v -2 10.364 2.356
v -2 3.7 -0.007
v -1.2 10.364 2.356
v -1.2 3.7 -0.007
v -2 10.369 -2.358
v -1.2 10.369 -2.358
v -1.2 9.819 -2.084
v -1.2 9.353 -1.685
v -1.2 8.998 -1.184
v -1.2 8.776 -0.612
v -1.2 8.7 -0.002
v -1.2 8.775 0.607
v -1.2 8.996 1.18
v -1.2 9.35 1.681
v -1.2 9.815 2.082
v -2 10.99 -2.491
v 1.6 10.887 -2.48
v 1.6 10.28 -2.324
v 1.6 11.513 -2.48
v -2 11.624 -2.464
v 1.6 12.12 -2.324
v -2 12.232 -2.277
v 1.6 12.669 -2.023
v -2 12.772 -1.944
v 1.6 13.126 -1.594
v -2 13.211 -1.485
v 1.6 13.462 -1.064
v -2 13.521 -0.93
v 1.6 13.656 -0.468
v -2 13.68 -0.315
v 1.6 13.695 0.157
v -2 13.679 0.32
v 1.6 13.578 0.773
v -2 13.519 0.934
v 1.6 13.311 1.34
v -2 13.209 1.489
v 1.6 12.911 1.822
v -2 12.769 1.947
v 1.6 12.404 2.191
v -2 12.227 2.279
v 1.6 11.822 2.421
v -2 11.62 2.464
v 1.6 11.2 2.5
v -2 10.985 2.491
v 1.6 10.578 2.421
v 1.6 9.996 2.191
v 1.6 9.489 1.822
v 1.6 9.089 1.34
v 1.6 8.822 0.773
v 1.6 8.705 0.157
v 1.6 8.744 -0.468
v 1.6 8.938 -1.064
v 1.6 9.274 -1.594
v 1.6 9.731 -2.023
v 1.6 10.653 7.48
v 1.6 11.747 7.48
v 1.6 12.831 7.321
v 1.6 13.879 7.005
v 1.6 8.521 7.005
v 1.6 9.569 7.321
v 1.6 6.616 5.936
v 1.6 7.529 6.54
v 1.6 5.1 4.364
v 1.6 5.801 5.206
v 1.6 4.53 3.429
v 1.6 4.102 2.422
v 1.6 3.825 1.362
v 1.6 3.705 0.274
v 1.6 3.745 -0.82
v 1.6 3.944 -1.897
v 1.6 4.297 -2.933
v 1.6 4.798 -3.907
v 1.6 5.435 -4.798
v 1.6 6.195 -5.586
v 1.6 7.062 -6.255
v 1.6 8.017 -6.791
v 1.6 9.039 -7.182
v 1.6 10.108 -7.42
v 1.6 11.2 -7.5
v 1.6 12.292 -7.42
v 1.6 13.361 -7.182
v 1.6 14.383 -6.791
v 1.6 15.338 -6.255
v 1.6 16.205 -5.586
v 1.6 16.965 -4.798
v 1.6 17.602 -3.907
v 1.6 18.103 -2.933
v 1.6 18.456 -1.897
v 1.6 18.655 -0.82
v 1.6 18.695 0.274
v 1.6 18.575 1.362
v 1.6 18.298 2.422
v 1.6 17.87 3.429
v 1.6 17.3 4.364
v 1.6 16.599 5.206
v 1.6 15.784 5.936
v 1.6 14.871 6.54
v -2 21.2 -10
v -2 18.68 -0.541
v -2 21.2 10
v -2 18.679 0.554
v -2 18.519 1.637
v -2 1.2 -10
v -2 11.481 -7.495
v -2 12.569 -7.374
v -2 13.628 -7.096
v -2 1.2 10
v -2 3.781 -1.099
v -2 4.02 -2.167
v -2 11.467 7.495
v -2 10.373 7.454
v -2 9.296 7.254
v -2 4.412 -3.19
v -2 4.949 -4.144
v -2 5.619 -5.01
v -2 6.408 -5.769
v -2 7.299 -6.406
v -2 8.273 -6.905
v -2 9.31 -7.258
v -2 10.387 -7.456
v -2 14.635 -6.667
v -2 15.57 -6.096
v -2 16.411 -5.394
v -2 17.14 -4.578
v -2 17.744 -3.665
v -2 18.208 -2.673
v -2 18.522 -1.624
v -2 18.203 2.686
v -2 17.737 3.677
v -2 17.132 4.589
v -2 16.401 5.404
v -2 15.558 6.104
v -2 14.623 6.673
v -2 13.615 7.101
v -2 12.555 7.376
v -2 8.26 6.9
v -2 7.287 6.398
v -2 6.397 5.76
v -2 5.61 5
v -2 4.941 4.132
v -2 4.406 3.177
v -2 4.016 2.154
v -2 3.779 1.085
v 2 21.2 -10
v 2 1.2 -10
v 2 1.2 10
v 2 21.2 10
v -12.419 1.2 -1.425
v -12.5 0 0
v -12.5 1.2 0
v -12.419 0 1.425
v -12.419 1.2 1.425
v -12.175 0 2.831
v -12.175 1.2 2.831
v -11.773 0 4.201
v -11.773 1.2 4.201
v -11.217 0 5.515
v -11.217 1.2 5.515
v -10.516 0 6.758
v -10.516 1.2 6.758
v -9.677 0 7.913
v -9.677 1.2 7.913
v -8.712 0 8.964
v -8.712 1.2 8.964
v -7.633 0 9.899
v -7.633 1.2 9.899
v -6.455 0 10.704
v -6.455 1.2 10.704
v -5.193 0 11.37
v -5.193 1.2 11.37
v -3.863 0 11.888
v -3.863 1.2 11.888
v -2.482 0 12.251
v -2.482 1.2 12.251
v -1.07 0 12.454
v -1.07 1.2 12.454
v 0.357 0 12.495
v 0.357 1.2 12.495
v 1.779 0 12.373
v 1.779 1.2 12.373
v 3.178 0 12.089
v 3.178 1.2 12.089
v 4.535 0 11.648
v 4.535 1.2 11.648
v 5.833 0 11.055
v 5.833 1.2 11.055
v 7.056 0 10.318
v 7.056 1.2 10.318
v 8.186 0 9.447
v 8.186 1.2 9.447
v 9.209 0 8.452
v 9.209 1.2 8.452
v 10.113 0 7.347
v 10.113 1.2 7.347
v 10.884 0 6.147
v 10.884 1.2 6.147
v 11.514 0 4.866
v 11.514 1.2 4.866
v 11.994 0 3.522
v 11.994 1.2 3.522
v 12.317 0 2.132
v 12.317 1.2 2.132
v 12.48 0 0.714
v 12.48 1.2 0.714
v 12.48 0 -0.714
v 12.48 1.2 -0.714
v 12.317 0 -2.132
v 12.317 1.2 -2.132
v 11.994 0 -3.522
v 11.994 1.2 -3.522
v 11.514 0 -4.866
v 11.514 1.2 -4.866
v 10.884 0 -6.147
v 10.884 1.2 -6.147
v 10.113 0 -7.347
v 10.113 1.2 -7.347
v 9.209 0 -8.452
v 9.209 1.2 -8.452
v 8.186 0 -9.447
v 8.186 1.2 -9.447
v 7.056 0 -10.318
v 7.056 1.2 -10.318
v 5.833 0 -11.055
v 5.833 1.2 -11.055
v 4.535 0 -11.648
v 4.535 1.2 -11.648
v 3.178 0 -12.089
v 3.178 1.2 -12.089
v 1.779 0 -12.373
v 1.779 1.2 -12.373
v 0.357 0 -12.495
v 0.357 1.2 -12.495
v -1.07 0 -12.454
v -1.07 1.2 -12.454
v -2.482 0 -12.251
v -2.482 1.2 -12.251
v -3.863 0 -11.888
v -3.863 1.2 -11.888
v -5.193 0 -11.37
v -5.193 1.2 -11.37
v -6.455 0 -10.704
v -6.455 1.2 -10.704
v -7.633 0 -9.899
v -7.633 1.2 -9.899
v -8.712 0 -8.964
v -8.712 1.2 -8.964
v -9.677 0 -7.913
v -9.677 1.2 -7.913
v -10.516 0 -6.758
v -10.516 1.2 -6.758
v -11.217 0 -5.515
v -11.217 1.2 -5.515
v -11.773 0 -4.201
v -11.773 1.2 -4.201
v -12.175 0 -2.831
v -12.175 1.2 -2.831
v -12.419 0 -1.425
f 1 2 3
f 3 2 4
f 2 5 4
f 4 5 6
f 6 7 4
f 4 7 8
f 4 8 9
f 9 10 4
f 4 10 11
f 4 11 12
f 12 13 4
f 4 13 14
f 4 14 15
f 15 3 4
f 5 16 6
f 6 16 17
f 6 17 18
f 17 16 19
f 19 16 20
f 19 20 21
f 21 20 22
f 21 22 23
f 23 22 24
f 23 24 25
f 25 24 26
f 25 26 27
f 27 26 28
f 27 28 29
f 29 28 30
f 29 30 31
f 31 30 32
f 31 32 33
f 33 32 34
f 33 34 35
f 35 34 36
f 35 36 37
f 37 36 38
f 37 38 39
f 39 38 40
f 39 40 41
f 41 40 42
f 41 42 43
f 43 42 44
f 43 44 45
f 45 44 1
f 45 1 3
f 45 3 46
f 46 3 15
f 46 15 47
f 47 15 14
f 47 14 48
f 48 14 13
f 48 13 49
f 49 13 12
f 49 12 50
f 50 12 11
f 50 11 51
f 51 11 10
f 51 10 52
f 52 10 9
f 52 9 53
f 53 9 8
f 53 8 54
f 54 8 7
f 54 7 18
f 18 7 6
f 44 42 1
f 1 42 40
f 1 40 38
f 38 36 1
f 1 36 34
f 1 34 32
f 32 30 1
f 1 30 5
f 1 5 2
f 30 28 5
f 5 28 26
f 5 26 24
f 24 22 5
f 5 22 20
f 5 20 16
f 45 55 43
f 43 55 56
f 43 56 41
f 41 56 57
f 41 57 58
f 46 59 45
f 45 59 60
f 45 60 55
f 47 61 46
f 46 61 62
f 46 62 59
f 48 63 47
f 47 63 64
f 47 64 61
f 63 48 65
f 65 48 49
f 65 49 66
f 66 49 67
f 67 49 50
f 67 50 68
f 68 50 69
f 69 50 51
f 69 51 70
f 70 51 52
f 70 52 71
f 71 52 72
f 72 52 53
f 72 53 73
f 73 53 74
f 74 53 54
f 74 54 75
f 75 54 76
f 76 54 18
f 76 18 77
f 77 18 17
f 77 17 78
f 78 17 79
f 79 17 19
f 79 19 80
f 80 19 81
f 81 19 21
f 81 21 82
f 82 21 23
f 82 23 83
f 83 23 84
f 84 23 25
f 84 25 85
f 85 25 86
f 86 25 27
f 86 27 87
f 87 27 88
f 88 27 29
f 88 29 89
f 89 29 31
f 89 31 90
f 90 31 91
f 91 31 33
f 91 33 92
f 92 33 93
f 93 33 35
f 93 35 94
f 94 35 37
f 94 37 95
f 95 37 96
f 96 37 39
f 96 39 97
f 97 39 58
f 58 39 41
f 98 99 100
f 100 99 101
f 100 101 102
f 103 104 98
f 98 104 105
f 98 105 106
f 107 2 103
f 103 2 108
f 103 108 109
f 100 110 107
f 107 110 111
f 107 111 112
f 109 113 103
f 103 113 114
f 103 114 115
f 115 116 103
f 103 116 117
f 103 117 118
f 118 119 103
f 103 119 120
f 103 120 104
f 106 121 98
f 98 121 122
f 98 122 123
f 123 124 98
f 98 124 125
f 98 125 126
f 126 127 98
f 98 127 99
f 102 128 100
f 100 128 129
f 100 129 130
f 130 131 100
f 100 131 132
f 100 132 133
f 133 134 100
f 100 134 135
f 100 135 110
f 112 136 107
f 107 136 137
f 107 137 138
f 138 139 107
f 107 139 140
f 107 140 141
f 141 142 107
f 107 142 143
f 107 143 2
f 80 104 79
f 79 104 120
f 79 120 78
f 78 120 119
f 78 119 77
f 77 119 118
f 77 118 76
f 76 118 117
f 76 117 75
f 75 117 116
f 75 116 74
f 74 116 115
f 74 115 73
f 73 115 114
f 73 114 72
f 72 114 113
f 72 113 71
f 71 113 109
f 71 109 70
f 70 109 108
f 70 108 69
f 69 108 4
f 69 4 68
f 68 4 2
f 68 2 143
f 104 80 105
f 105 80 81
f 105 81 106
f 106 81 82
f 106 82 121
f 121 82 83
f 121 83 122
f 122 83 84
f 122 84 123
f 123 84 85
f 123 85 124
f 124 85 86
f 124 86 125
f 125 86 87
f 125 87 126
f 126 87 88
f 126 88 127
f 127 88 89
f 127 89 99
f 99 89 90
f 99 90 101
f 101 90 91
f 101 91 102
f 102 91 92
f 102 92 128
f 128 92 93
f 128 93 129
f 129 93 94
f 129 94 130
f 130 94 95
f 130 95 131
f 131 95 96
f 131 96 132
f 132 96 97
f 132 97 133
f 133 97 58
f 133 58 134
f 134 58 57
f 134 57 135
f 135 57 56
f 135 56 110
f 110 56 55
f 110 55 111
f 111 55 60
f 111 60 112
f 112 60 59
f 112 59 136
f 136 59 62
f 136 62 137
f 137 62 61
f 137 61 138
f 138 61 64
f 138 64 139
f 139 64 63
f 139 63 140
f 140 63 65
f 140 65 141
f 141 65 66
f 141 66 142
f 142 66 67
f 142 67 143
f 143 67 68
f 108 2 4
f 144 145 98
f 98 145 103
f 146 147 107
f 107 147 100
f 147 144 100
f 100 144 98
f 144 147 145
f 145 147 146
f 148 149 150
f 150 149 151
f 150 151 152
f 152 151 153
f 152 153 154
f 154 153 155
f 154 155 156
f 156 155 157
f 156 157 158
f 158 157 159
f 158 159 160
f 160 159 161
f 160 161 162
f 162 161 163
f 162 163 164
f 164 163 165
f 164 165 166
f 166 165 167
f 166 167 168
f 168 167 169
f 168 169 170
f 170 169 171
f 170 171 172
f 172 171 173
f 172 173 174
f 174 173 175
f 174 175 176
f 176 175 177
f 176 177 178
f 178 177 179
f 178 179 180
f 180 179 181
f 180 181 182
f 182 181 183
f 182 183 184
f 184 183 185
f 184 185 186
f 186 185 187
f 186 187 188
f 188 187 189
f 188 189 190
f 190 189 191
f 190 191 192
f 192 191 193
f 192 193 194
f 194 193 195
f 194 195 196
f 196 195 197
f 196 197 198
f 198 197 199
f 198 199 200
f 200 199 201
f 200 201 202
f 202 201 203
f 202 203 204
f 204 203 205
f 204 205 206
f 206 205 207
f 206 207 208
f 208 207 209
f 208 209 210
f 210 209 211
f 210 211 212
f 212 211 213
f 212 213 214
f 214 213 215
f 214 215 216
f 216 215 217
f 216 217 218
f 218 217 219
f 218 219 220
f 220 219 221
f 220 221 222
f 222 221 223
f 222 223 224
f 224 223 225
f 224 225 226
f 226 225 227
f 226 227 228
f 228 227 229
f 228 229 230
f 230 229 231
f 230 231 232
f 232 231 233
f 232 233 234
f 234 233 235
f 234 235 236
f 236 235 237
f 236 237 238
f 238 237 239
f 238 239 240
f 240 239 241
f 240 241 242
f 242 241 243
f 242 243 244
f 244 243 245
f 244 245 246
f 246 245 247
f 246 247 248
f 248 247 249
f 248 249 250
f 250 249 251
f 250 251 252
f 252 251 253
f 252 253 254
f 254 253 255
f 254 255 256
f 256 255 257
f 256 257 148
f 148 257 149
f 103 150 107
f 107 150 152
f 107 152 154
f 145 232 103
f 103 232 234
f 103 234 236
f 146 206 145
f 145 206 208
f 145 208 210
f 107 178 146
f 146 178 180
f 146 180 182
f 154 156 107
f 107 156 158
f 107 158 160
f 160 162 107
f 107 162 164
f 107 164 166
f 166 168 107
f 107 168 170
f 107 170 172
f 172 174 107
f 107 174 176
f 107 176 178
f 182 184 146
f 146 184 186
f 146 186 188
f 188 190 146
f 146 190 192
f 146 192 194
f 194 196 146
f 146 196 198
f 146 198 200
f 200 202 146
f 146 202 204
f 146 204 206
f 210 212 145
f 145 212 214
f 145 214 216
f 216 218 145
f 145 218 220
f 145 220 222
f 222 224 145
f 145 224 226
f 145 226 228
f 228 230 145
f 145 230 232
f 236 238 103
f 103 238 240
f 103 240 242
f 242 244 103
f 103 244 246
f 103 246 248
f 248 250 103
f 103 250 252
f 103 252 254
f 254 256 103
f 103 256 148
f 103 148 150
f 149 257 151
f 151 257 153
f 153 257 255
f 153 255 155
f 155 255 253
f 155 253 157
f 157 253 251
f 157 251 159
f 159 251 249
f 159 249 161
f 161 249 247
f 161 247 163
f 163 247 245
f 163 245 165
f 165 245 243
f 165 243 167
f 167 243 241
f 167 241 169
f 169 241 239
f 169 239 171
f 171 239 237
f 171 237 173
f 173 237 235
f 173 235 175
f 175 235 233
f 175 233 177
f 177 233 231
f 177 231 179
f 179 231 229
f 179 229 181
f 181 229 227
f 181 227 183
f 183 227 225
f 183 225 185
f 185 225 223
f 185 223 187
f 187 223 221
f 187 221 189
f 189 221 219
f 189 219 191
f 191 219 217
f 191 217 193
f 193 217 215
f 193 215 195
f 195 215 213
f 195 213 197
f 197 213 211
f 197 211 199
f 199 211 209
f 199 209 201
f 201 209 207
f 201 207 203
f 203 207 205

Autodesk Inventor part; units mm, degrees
ref_plane "XZ Plane" through (0, 0, 0) normal (0, 1, 0) x (-1, 0, 0)
ref_plane "XY Plane" through (0, 0, 0) normal (0, 0, 1) x (1, 0, 0)
sketch "Sketch1" plane through (0, 0, 0) normal (0, 1, 0) x (-1, 0, 0)
  circle A0 centre (0, 0) radius 12.5
  dimension "d0" = 25
extrude "Extrusion1" add sketch "Sketch1" along normal blind 1.2
sketch "Sketch3" plane through (0, 0, 0) normal (1, 0, 0) x (0, 1, 0)
  line L0 (1.2, -12.5) -> (1.2, 12.5) projected
  line L1 (0, -12.5) -> (0, 12.5) projected
  line L2 (1.2, 10) -> (21.2, 10)
  line L3 (21.2, 10) -> (21.2, -10)
  line L4 (21.2, -10) -> (1.2, -10)
  line L5 (1.2, -10) -> (1.2, 10)
  circle A0 centre (11.2, 0) radius 7.5
  point P0 (0, 0)
  point P1 (1.2, -10)
  point P2 (1.2, -10)
  dimension "d3" = 20
  dimension "d4" = 20
  dimension "d5" = 2.5
  dimension "d6" = 15
extrude "Extrusion2" add sketch "Sketch3" along normal mid plane 4
sketch "Sketch4" plane through (2, 0, 0) normal (1, 0, 0) x (0, 0, -1)
  line L0 (-10, 21.2) -> (-10, 1.2) projected
  line L1 (10, 1.2) -> (-10, 1.2) projected
  line L2 (10, 1.2) -> (10, 21.2) projected
  line L3 (10, 21.2) -> (-10, 21.2) projected
  circle A0 centre (0, 11.2) radius 7.5 projected
  circle A1 centre (0, 11.2) radius 7.5
  point P0 (0, 0)
extrude "Extrusion3" add sketch "Sketch4" against normal blind 0.4 contours A0
sketch "Sketch5" plane through (1.6, 11.2, 0) normal (-1, 0, 0) x (0, 0, 1)
  line L0 (10, -10) -> (10, 10) projected
  line L1 (10, 10) -> (-10, 10) projected
  line L2 (-10, 10) -> (-10, -10) projected
  line L3 (10, -10) -> (-10, -10) projected
  circle A0 centre (0, 0) radius 7.5 projected
  circle A1 centre (0, 0) radius 2.5
  point P0 (0, -11.2)
  point P1 (0.000179, -7.5)
  dimension "d17" = 5
extrude "Extrusion4" add sketch "Sketch5" along normal up to surface (3.6 mm away) contours A1
sketch "Sketch7" plane through (-2, 11.2, 0) normal (-1, 0, 0) x (0, 0, 1)
  circle A0 centre (0, 0) radius 7.5
  line L0 (-0.006904, -7.499997) -> (2.356254, -0.835503)
  line L1 (-0.006904, -7.499997) -> (-2.357789, -0.831163)
  circle A1 centre (0, 0) radius 2.5
  circle A2 centre (0, 0) radius 2.5
  point P0 (0, -11.2)
  point P1 (2.356254, -0.835503)
  point P2 (-2.357789, -0.831163)
sketch "Sketch7 outline for Extrusion5" plane through (-2, 11.2, 0) normal (-1, 0, 0) x (0, 0, 1)
  arc A0 (2.356254, -0.835503) -> (-2.357789, -0.831163) centre (0, 0) cw
  line L0 (-0.006904, -7.499997) -> (2.356254, -0.835503)
  line L1 (-2.357789, -0.831163) -> (-0.006904, -7.499997)
extrude "Extrusion5" add sketch "Sketch7 outline for Extrusion5" against normal blind 0.8
properties part number "TestBushButton"
